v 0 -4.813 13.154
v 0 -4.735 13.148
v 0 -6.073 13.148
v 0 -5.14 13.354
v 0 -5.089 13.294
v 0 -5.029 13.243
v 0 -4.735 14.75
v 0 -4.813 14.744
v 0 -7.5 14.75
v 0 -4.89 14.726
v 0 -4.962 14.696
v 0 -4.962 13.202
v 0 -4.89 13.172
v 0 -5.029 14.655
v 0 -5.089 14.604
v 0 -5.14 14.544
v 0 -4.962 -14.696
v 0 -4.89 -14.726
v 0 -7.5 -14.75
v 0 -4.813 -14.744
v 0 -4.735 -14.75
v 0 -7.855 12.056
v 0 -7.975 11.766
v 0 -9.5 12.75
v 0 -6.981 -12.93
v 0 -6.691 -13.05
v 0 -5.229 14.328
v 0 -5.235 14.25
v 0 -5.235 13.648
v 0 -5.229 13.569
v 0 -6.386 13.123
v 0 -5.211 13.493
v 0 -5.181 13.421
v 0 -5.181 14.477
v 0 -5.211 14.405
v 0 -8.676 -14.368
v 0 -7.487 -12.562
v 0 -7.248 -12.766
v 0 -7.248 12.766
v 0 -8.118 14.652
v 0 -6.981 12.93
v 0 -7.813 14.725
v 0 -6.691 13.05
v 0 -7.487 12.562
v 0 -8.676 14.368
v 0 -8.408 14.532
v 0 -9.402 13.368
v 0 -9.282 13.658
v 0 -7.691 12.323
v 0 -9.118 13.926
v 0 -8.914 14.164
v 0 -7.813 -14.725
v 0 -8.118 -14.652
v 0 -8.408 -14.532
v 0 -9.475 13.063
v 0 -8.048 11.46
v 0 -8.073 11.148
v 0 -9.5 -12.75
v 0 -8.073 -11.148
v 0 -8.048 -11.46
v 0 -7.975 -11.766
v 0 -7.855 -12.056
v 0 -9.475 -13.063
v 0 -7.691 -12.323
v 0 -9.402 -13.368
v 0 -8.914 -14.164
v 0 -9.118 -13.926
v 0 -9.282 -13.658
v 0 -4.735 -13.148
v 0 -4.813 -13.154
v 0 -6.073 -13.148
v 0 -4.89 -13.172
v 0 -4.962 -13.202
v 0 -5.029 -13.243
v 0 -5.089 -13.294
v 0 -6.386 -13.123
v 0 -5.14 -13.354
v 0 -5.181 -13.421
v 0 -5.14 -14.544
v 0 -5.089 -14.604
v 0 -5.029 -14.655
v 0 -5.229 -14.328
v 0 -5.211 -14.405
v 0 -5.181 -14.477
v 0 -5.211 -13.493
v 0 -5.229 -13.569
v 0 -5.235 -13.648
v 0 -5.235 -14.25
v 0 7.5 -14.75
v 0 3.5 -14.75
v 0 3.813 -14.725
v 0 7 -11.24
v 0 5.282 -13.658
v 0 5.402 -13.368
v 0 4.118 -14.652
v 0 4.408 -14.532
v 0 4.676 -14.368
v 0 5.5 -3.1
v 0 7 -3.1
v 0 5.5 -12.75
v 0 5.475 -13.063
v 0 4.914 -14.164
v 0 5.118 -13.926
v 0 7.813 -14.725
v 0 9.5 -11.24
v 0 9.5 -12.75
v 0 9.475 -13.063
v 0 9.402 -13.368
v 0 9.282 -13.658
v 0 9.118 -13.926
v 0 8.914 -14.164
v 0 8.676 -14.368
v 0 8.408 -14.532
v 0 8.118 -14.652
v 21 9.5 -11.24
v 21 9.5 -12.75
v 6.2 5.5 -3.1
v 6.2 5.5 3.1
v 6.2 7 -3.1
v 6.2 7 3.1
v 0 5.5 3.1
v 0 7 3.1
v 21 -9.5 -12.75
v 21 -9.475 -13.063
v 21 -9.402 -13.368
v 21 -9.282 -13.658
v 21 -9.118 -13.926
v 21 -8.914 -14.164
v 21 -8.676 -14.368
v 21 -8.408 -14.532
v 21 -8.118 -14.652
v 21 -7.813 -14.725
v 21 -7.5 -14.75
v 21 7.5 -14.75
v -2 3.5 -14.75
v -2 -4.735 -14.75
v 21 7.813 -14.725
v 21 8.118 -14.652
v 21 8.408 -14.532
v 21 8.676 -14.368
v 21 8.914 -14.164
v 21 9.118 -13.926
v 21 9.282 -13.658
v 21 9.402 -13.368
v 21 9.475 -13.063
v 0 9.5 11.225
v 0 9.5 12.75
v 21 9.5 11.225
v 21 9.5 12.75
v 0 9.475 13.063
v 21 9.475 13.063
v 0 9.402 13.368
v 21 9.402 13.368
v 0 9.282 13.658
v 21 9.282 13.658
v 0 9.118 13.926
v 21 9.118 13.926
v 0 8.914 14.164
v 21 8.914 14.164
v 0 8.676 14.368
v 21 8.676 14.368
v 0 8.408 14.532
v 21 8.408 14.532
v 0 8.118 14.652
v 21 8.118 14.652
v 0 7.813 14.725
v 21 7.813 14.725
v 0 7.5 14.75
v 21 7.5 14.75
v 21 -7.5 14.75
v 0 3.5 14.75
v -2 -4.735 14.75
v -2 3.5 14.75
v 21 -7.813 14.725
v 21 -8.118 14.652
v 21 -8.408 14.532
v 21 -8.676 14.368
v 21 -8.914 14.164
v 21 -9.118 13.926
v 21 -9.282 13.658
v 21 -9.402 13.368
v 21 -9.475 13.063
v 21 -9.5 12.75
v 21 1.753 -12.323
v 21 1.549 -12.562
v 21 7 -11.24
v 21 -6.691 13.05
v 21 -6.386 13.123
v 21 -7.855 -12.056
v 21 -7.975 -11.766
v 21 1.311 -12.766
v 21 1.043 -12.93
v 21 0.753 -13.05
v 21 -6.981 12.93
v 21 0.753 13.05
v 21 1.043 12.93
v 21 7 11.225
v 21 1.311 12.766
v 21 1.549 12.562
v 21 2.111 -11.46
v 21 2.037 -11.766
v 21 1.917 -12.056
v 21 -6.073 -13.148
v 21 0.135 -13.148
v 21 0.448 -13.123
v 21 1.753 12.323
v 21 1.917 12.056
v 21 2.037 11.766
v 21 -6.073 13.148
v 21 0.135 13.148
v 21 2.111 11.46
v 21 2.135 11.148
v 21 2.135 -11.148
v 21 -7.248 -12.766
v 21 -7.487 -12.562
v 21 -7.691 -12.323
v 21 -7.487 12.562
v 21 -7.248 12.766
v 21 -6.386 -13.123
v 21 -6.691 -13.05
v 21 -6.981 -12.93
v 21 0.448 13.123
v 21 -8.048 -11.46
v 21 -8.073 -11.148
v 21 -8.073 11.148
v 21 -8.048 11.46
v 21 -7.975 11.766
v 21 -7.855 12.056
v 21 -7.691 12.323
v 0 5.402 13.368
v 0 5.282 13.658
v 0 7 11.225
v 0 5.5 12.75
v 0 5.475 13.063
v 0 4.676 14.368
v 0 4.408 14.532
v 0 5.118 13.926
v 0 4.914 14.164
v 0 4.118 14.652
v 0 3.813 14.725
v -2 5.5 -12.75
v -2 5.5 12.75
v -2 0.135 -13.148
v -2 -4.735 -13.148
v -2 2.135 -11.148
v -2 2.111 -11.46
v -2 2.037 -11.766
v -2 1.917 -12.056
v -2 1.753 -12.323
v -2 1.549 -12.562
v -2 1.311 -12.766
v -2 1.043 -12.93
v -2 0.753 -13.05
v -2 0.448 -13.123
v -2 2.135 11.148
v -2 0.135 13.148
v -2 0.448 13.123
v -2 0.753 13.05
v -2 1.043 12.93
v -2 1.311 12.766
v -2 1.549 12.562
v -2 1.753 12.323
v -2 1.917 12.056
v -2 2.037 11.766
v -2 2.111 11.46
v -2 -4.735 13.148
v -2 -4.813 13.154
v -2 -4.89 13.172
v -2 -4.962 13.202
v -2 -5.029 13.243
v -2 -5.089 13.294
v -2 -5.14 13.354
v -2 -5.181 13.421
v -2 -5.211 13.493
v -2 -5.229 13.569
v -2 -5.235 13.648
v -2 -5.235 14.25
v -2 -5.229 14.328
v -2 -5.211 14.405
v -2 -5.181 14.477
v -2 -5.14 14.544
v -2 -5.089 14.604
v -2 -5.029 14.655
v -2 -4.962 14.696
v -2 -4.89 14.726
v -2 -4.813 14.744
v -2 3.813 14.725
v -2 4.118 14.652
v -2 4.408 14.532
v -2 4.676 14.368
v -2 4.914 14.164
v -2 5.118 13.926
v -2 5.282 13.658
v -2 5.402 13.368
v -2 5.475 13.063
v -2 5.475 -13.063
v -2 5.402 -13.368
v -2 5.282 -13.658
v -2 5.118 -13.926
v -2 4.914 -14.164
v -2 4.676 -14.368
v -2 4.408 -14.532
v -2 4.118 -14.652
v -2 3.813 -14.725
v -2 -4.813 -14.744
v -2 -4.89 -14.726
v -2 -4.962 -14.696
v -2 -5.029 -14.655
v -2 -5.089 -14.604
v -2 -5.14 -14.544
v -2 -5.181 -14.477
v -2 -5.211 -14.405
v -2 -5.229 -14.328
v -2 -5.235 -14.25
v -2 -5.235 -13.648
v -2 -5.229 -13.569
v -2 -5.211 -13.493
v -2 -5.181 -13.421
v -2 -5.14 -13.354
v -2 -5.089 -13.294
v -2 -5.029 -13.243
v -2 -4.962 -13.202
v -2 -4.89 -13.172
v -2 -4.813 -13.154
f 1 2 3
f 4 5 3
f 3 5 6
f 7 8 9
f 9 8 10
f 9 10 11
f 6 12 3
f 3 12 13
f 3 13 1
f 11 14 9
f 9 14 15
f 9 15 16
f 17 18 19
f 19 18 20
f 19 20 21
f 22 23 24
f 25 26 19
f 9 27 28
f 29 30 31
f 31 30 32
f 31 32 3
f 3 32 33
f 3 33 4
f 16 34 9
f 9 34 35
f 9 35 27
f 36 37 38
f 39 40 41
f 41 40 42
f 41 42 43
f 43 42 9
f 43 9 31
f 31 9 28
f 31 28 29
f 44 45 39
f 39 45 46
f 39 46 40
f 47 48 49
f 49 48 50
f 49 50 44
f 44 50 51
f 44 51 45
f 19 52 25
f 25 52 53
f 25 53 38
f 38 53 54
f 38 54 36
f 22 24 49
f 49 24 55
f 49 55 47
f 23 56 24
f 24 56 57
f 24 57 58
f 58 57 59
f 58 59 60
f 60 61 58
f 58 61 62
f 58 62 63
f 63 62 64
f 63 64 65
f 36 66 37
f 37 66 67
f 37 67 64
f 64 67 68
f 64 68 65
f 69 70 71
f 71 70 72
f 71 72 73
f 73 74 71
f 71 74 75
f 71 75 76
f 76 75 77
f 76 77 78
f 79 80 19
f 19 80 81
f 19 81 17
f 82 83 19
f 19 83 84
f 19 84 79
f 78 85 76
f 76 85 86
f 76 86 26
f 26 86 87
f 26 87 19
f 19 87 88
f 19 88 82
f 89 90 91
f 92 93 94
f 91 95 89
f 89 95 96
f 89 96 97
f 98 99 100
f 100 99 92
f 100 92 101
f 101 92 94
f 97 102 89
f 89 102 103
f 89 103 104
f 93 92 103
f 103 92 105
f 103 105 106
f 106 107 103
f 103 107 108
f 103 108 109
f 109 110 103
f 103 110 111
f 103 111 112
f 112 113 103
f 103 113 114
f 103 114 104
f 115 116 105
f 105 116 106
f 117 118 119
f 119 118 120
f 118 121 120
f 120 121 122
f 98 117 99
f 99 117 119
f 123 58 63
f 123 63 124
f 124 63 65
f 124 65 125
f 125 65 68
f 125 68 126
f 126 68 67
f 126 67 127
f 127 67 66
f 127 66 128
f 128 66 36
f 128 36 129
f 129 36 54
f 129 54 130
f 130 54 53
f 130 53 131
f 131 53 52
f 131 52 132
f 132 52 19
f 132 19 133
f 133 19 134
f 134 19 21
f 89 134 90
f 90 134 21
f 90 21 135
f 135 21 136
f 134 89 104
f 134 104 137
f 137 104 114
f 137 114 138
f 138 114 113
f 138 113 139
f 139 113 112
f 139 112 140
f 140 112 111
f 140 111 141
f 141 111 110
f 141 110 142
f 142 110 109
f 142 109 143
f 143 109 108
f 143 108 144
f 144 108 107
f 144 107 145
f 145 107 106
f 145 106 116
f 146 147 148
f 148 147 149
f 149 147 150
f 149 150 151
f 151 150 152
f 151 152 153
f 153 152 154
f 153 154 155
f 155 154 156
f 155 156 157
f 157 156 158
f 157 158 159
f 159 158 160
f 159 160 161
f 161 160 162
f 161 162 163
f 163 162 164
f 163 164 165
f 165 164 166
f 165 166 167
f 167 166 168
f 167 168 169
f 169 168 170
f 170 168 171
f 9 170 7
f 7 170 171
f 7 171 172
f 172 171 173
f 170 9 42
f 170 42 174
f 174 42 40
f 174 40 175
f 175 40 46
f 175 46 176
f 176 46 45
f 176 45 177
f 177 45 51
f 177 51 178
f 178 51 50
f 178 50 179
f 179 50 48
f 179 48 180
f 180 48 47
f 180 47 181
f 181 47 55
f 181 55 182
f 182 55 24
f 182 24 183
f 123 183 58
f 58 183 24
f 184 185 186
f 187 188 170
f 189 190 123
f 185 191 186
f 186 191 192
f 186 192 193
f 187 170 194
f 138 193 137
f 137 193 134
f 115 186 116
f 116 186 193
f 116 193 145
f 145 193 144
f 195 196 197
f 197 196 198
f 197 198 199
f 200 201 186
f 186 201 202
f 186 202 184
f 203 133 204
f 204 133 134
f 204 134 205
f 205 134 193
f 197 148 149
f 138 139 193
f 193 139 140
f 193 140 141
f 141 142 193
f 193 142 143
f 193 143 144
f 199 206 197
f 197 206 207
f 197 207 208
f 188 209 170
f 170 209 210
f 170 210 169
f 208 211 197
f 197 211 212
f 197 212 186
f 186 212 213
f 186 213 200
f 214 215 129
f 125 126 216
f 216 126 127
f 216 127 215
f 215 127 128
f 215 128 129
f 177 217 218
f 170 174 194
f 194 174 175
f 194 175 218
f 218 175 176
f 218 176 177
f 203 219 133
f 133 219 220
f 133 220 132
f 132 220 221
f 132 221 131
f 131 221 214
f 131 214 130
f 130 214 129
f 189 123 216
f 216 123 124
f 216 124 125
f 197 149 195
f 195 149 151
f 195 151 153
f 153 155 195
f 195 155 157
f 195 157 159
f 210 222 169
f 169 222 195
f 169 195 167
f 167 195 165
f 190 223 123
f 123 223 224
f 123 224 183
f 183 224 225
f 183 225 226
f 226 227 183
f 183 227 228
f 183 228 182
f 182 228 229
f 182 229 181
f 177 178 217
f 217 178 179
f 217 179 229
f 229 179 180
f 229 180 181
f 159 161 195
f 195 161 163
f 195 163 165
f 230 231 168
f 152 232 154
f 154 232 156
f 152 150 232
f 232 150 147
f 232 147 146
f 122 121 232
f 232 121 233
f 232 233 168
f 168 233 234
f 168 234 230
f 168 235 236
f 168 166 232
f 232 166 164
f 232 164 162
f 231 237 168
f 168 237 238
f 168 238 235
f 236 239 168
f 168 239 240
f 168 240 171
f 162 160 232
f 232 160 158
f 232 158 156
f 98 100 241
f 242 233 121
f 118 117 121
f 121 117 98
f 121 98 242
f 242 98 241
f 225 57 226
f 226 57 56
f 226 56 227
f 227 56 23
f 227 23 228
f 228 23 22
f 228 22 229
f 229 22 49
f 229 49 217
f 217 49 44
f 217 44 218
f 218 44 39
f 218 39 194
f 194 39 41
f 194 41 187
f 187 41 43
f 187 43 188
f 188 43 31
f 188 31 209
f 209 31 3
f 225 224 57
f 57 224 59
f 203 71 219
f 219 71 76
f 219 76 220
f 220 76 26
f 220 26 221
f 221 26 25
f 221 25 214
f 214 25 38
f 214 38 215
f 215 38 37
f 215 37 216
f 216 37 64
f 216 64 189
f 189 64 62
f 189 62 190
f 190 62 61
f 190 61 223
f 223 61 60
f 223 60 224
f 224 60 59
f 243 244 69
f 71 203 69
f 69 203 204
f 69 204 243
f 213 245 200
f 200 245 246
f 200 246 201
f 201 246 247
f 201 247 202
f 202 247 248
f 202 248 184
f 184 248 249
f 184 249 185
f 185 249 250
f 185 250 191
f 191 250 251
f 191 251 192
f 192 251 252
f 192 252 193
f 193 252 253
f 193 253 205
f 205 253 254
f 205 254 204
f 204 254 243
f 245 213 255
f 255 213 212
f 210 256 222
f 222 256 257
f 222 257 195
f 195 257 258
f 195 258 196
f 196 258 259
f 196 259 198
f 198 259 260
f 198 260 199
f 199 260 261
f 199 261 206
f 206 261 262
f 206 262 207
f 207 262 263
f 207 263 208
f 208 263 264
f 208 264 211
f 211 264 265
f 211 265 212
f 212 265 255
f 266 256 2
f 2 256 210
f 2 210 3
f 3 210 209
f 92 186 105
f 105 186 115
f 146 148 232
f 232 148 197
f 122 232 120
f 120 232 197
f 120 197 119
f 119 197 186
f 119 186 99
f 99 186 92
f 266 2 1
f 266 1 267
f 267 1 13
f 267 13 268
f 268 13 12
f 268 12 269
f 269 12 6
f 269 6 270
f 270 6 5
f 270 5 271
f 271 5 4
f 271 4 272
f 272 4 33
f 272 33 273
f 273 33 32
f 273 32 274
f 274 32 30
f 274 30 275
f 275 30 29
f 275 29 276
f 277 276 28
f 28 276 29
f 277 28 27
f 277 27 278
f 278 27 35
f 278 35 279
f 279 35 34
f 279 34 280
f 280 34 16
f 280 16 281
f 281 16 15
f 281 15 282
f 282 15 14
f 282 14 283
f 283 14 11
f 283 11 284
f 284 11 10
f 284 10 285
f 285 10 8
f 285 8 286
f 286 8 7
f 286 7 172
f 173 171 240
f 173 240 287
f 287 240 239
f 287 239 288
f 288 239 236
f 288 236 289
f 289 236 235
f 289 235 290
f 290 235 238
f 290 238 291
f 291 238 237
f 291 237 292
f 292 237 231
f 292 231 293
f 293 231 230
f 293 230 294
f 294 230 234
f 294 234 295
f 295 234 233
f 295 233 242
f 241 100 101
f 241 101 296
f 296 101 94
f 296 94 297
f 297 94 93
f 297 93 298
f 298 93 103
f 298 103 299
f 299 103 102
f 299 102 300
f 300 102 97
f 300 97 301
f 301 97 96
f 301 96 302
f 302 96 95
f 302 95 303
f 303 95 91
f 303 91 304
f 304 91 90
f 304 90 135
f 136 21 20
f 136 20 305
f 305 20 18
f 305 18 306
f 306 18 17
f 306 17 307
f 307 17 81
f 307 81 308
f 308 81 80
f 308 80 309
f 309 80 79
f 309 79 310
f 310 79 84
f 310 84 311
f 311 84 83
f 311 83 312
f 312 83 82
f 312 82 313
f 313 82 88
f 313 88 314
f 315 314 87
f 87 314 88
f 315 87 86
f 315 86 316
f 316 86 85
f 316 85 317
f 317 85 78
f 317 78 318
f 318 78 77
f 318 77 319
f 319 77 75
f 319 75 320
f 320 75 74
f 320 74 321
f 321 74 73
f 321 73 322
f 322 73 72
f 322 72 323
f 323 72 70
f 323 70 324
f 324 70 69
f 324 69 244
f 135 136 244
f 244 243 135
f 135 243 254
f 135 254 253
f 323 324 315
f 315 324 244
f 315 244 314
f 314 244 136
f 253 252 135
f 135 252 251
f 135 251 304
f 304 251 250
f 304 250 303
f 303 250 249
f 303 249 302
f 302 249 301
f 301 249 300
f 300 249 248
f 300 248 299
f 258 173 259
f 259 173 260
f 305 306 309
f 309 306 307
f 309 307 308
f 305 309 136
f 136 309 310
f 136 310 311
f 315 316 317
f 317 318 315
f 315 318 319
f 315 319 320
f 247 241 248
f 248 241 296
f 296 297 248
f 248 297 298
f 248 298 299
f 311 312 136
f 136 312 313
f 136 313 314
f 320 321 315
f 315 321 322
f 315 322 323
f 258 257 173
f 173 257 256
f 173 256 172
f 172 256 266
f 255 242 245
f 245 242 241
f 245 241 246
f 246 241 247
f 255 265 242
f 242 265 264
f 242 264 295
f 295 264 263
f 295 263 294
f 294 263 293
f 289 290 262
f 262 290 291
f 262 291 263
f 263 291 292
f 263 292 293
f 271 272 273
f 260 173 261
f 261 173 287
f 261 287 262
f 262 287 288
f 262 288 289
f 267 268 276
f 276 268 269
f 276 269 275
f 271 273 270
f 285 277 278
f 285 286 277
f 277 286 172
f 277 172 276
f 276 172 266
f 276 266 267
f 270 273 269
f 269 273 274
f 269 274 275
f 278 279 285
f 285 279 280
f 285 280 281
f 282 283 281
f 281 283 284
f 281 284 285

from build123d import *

# Parameters (mm, degrees)
BOSS_EXTRUDE1_DEPTH     = 21
SKETCH5_W               = 6.2
SKETCH5_H               = 6.2
CUT_EXTRUDE1_DEPTH      = 4
CUT_EXTRUDE2_DEPTH      = 28.364438602
CUT_EXTRUDE2_DEPTH_BACK = 28.364438602
SKETCH9_W               = 24.284850455
SKETCH9_H               = 22.464844075
CUT_EXTRUDE3_DEPTH      = 2.5
BOSS_EXTRUDE2_DEPTH     = 2


with BuildPart() as part:
    # Sketch3 → Boss-Extrude1 (new body)
    with BuildSketch(Plane(origin=(0, 0, 0), x_dir=(0, 0, -1), z_dir=(1, 0, 0))):
        with BuildLine():
            Line((-12.75, -9.5), (12.75, -9.5))
            ThreePointArc((12.75, -9.5), (14.164213562, -8.914213562), (14.75, -7.5))
            Line((14.75, -7.5), (14.75, 7.5))
            ThreePointArc((14.75, 7.5), (14.164213562, 8.914213562), (12.75, 9.5))
            Line((12.75, 9.5), (-12.75, 9.5))
            ThreePointArc((-12.75, 9.5), (-14.164213562, 8.914213562), (-14.75, 7.5))
            Line((-14.75, 7.5), (-14.75, -7.5))
            ThreePointArc((-14.75, -7.5), (-14.164213562, -8.914213562), (-12.75, -9.5))
        make_face()
    extrude(amount=BOSS_EXTRUDE1_DEPTH)

    # Sketch5 → Cut-Extrude1 (cut)
    with BuildSketch(Plane(origin=(0, 9.5, 0), x_dir=(1, 0, 0), z_dir=(0, 1, 0))):
        with Locations((3.1, 0)):
            Rectangle(SKETCH5_W, SKETCH5_H)
    extrude(amount=-CUT_EXTRUDE1_DEPTH, mode=Mode.SUBTRACT)

    # Sketch7 → Cut-Extrude2 (cut, two sides: drawn at the far end of the back side and taken through both)
    with BuildSketch(Plane.ZY.offset(-CUT_EXTRUDE2_DEPTH_BACK)):
        with BuildLine():
            Line((-11.147623693, -8.072928754), (11.147623693, -8.072928754))
            ThreePointArc((11.147623693, -8.072928754), (12.561837255, -7.487142316), (13.147623693, -6.072928754))
            Line((13.147623693, -6.072928754), (13.147623693, 0.135263404))
            ThreePointArc((13.147623693, 0.135263404), (12.561837255, 1.549476966), (11.147623693, 2.135263404))
            Line((11.147623693, 2.135263404), (-11.147623693, 2.135263404))
            ThreePointArc((-11.147623693, 2.135263404), (-12.561837255, 1.549476966), (-13.147623693, 0.135263404))
            Line((-13.147623693, 0.135263404), (-13.147623693, -6.072928754))
            ThreePointArc((-13.147623693, -6.072928754), (-12.561837255, -7.487142316), (-11.147623693, -8.072928754))
        make_face()
    extrude(amount=CUT_EXTRUDE2_DEPTH + CUT_EXTRUDE2_DEPTH_BACK, mode=Mode.SUBTRACT)

    # Sketch9 → Cut-Extrude3 (cut)
    with BuildSketch(Plane(origin=(0, 9.5, 0), x_dir=(1, 0, 0), z_dir=(0, 1, 0))):
        with Locations((12.142425228, 0.007615305)):
            Rectangle(SKETCH9_W, SKETCH9_H)
    extrude(amount=-CUT_EXTRUDE3_DEPTH, mode=Mode.SUBTRACT)

    # Sketch11 → Boss-Extrude2 (add)
    with BuildSketch(Plane.ZY):
        with BuildLine():
            Line((-13.647623693, -5.23512894), (-14.25, -5.23512894))
            ThreePointArc((-14.25, -5.23512894), (-14.603553391, -5.088682331), (-14.75, -4.73512894))
            Line((-14.75, -4.73512894), (-14.75, 3.5))
            ThreePointArc((-14.75, 3.5), (-14.164213562, 4.914213562), (-12.75, 5.5))
            Line((-12.75, 5.5), (12.75, 5.5))
            ThreePointArc((12.75, 5.5), (14.164213562, 4.914213562), (14.75, 3.5))
            Line((14.75, 3.5), (14.75, -4.73512894))
            ThreePointArc((14.75, -4.73512894), (14.603553391, -5.088682331), (14.25, -5.23512894))
            Line((14.25, -5.23512894), (13.647623693, -5.23512894))
            ThreePointArc((13.647623693, -5.23512894), (13.294070302, -5.088682331), (13.147623693, -4.73512894))
            Line((13.147623693, -4.73512894), (13.147623693, 0.135263404))
            ThreePointArc((13.147623693, 0.135263404), (12.561837255, 1.549476966), (11.147623693, 2.135263404))
            Line((11.147623693, 2.135263404), (-11.147623693, 2.135263404))
            ThreePointArc((-11.147623693, 2.135263404), (-12.561837255, 1.549476966), (-13.147623693, 0.135263404))
            Line((-13.147623693, 0.135263404), (-13.147623693, -4.73512894))
            ThreePointArc((-13.147623693, -4.73512894), (-13.294070302, -5.088682331), (-13.647623693, -5.23512894))
        make_face()
    extrude(amount=BOSS_EXTRUDE2_DEPTH)


solid = part.part
